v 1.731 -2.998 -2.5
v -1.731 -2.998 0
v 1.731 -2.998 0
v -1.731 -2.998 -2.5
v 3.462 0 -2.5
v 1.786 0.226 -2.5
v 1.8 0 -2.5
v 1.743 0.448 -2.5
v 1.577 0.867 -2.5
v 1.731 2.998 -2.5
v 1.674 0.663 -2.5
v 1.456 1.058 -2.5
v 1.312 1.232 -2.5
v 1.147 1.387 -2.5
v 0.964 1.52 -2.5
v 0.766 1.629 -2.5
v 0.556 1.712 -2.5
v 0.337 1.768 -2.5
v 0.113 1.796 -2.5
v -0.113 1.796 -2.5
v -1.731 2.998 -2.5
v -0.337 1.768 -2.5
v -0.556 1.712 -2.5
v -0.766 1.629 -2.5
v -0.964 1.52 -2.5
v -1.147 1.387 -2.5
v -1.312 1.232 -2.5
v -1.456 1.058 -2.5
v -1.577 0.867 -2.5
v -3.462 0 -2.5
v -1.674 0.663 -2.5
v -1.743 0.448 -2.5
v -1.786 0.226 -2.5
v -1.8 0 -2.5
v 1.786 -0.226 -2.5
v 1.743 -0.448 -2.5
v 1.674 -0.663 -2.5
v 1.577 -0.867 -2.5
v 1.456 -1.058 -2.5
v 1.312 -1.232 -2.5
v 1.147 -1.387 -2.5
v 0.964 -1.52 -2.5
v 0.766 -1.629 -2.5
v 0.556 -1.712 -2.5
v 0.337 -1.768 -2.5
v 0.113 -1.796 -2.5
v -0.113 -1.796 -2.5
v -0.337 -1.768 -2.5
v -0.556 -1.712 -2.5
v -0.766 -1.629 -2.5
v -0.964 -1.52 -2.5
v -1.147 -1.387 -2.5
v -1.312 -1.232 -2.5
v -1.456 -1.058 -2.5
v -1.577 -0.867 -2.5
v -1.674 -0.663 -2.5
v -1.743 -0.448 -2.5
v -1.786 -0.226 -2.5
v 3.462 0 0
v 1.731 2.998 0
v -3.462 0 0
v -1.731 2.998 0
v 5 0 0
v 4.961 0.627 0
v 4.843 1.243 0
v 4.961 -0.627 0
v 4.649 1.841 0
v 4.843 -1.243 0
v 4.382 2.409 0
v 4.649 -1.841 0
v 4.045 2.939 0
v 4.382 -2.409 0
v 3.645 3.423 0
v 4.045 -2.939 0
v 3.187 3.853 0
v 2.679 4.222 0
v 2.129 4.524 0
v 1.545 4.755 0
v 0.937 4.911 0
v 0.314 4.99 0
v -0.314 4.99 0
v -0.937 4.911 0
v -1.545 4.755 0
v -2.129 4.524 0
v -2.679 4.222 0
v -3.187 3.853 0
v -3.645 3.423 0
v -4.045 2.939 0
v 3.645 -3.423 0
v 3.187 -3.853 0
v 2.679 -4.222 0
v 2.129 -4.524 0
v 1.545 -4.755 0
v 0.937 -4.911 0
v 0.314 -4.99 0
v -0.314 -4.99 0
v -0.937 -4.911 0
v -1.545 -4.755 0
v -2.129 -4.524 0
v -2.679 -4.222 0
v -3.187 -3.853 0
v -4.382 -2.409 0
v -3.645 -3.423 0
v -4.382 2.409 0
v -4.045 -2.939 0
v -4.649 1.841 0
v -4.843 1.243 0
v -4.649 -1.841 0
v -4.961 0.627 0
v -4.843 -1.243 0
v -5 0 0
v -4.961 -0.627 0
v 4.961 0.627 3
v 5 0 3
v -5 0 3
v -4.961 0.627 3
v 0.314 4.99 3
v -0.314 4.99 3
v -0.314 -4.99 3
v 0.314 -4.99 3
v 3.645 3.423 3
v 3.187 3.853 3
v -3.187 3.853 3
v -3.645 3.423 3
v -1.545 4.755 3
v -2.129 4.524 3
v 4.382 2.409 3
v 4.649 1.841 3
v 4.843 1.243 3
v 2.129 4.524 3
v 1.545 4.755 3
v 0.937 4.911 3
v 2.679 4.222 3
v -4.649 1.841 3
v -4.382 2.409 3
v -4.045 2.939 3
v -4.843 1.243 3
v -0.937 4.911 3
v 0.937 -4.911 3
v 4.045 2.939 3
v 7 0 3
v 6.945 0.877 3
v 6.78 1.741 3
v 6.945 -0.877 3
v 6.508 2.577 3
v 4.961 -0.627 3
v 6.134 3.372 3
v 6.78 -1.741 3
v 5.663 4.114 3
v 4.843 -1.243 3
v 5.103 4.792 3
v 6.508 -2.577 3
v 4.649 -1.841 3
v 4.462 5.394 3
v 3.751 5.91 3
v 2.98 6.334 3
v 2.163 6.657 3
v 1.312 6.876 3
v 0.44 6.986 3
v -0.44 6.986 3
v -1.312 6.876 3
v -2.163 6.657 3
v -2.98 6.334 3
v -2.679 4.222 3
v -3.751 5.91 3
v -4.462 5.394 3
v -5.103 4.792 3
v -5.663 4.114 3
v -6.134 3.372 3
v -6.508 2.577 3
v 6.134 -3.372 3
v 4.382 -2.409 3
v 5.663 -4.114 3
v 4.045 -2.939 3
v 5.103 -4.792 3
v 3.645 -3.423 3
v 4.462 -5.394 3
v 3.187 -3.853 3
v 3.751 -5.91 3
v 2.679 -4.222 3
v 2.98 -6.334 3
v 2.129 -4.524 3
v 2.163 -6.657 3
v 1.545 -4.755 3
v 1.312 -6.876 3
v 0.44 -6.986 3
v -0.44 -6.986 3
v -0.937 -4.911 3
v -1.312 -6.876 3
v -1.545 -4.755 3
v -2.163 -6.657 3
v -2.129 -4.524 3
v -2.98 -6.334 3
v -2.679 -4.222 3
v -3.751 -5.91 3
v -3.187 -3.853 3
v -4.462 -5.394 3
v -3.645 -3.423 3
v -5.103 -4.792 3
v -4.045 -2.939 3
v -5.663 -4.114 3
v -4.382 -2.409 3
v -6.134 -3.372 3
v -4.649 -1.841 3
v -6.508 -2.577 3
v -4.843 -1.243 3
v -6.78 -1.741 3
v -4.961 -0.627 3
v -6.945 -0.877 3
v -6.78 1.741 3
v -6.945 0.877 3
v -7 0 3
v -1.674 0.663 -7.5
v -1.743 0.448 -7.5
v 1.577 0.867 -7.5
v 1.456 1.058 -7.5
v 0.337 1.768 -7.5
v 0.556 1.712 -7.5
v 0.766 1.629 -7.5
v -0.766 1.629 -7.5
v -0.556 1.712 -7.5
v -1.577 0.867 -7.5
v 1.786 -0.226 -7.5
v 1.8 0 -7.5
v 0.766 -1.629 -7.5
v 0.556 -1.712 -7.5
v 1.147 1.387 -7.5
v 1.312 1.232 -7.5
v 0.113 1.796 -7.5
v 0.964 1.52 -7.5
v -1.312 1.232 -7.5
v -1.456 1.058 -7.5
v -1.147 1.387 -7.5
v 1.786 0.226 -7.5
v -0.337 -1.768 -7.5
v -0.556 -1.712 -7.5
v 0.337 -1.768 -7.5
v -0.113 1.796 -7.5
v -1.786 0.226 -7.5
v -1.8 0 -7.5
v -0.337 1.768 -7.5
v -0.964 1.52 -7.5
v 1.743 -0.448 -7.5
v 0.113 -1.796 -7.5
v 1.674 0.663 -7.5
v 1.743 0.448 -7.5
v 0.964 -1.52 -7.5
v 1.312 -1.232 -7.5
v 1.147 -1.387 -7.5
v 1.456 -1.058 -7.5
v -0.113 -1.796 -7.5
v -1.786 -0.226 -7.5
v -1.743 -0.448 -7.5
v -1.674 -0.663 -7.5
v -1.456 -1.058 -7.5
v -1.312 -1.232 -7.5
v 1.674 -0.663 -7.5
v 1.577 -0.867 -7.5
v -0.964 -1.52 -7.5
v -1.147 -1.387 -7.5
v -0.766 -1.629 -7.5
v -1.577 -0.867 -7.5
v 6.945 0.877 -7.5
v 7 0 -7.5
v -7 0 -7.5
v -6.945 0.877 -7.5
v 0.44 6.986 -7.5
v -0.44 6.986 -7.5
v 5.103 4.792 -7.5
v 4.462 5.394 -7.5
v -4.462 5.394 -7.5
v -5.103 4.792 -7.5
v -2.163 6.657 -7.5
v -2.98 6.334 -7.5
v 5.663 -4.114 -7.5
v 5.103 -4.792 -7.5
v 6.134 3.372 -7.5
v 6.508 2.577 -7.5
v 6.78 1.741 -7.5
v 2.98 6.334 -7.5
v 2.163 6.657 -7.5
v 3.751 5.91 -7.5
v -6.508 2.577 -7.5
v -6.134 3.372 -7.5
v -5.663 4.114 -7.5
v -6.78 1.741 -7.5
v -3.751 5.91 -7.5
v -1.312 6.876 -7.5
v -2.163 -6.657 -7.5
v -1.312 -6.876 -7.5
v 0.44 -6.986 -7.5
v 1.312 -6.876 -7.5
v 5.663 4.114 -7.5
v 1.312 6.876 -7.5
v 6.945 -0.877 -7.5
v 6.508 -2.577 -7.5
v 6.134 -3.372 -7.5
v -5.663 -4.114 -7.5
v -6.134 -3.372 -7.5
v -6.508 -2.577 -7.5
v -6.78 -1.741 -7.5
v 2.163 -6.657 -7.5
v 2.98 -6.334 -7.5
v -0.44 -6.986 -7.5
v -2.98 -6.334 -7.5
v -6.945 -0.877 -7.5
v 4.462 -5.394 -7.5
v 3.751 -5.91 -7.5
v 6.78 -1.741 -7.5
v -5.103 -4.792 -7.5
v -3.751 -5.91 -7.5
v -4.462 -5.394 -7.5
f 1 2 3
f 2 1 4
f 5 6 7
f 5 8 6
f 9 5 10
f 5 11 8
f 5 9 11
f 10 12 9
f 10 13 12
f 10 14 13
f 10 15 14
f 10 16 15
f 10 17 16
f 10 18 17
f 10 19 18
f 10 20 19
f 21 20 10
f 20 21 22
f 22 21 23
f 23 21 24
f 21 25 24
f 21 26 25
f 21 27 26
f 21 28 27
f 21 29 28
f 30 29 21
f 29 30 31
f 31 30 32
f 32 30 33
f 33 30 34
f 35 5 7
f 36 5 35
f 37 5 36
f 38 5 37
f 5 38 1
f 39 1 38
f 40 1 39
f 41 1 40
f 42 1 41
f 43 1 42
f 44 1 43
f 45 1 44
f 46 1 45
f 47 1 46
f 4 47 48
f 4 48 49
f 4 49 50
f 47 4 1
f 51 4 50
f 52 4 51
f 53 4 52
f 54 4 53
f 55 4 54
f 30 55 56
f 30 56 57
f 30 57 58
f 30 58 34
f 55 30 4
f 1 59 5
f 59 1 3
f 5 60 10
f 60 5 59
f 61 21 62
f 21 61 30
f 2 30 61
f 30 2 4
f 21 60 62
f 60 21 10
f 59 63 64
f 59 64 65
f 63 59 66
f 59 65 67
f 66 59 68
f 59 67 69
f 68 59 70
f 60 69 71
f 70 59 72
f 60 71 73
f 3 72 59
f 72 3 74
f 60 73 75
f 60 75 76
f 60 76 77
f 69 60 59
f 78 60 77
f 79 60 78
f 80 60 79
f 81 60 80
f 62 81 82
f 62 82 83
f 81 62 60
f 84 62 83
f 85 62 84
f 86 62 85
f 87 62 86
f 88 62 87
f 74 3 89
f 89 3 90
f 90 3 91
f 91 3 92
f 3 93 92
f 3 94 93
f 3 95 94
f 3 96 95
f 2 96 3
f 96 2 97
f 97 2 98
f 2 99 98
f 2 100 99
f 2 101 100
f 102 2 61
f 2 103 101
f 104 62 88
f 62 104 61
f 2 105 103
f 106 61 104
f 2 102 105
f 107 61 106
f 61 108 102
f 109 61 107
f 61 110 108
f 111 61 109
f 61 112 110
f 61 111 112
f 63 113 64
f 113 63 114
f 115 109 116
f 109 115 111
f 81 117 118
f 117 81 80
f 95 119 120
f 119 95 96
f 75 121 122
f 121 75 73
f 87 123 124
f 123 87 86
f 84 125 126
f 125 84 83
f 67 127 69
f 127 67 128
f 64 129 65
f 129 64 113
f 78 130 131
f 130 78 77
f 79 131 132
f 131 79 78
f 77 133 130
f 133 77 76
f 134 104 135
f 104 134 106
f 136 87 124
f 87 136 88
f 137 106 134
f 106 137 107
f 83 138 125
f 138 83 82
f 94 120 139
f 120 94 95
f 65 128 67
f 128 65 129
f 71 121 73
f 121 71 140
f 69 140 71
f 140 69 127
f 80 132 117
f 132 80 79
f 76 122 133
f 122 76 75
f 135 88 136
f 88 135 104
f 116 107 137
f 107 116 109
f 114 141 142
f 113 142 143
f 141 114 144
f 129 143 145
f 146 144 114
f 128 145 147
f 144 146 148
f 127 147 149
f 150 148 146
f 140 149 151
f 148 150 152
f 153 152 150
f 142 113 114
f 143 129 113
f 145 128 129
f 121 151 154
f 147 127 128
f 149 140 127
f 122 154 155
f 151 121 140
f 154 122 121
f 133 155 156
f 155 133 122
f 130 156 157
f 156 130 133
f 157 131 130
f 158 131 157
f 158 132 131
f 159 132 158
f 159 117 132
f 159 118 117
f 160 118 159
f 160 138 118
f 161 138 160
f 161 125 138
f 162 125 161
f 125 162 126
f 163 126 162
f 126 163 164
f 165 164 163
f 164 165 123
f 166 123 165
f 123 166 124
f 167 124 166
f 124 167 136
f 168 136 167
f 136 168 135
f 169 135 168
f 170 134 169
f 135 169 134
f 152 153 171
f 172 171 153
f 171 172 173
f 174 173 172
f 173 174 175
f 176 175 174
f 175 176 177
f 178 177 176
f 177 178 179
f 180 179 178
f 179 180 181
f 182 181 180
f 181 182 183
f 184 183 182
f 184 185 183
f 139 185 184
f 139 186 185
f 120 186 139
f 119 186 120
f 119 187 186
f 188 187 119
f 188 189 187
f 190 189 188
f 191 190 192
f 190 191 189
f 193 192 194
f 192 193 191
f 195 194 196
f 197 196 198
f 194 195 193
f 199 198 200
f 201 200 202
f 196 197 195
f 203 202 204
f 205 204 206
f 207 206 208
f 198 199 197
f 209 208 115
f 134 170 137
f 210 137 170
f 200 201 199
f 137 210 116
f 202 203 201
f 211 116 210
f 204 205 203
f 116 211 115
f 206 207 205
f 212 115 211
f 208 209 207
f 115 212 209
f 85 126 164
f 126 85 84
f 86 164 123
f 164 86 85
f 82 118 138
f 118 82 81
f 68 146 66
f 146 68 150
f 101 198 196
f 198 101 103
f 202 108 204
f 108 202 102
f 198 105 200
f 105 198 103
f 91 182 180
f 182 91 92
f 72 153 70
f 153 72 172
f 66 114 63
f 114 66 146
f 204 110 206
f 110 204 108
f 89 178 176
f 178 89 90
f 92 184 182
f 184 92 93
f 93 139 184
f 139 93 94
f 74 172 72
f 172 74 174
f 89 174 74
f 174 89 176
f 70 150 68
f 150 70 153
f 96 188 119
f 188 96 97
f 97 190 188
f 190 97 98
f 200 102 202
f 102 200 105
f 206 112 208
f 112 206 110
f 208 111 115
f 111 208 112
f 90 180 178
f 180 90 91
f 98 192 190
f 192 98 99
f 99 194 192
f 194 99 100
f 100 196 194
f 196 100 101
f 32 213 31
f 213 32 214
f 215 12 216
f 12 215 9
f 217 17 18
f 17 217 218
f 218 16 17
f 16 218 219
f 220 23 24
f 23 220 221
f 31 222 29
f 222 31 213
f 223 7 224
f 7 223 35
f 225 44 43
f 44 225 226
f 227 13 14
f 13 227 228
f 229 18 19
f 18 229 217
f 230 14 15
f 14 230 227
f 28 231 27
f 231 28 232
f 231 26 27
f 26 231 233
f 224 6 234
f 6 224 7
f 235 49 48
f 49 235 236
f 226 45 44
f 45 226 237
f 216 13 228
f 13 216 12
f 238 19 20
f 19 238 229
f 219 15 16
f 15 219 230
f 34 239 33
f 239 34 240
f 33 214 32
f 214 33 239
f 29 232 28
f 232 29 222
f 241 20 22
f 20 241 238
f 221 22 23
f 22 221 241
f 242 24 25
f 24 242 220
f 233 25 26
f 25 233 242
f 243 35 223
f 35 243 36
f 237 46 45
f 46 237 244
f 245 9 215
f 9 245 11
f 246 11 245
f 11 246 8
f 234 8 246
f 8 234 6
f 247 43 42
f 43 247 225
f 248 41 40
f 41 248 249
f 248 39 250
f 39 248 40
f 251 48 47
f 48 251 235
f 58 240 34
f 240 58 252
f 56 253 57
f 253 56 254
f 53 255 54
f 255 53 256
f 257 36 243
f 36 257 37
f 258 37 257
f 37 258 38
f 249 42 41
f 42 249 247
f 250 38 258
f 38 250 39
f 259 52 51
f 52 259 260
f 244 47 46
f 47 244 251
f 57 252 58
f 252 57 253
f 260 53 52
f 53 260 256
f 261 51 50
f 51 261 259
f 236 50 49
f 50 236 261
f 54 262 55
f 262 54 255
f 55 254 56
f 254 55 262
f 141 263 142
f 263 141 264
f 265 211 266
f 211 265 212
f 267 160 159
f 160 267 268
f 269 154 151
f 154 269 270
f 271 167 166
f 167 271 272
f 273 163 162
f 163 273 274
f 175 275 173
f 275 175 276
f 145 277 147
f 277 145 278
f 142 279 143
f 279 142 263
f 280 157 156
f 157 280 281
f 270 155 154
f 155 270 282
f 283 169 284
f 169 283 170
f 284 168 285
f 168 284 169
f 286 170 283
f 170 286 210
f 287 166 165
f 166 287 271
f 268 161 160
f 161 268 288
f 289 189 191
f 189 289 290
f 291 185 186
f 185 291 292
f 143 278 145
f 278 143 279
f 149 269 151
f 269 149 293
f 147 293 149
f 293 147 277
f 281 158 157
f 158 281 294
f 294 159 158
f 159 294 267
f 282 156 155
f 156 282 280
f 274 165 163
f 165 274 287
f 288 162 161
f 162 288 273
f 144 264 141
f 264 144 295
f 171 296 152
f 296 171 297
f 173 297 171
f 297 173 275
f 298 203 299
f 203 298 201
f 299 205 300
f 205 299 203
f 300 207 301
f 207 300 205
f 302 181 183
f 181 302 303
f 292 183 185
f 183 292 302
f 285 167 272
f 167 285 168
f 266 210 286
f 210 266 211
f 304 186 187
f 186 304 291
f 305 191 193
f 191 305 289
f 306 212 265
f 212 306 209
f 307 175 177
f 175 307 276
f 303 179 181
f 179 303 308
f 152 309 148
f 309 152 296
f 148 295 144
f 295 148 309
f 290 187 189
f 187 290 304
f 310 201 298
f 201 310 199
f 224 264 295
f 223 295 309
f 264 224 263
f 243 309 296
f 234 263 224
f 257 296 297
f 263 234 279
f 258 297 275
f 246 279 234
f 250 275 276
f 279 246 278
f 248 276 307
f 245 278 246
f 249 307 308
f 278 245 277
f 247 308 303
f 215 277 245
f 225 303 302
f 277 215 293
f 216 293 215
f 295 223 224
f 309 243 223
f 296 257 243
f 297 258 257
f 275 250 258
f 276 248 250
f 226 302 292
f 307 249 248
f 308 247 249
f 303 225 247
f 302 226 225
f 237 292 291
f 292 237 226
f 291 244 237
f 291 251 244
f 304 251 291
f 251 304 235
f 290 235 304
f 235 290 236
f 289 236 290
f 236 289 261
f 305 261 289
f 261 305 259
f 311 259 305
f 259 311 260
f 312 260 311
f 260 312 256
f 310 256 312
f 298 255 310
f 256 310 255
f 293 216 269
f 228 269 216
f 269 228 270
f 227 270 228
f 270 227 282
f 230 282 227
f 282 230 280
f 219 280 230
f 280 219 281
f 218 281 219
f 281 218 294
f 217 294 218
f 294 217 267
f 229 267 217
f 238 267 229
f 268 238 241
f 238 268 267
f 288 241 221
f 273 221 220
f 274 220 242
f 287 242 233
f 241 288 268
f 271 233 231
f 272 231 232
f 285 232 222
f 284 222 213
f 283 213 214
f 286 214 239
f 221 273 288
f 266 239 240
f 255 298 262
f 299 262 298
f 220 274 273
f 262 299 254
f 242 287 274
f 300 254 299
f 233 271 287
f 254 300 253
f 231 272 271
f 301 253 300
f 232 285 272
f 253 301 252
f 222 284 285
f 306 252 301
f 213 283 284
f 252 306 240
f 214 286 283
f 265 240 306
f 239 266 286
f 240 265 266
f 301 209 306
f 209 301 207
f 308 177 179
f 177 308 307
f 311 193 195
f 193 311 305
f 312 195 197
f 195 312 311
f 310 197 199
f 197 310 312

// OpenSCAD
$fn = 50;

difference() {
	union() {
		translate(v = [0, 0, -7.5]) {
			cylinder(h = 10.5, r = 7.0);
		}
	}
	union() {
		translate(v = [0, 0, 0]) {
			rotate(a = [0, 0, 0]) {
				difference() {
					union() {
						translate(v = [0, 0, -2.5]) {
							linear_extrude(height = 2.5) {
								polygon(points = [[3.4619999999999997, 0.0], [1.7310000000000003, 2.9981799479017264], [-1.7309999999999992, 2.9981799479017264], [-3.4619999999999997, 4.2397272186481365e-16], [-1.7310000000000014, -2.998179947901726], [1.7309999999999977, -2.9981799479017277]]);
							}
						}
					}
					union();
				}
			}
		}
		#cylinder(h = 3, r = 5.0);
		#translate(v = [0, 0, -100.0]) {
			cylinder(h = 200, r = 1.8);
		}
	}
}
